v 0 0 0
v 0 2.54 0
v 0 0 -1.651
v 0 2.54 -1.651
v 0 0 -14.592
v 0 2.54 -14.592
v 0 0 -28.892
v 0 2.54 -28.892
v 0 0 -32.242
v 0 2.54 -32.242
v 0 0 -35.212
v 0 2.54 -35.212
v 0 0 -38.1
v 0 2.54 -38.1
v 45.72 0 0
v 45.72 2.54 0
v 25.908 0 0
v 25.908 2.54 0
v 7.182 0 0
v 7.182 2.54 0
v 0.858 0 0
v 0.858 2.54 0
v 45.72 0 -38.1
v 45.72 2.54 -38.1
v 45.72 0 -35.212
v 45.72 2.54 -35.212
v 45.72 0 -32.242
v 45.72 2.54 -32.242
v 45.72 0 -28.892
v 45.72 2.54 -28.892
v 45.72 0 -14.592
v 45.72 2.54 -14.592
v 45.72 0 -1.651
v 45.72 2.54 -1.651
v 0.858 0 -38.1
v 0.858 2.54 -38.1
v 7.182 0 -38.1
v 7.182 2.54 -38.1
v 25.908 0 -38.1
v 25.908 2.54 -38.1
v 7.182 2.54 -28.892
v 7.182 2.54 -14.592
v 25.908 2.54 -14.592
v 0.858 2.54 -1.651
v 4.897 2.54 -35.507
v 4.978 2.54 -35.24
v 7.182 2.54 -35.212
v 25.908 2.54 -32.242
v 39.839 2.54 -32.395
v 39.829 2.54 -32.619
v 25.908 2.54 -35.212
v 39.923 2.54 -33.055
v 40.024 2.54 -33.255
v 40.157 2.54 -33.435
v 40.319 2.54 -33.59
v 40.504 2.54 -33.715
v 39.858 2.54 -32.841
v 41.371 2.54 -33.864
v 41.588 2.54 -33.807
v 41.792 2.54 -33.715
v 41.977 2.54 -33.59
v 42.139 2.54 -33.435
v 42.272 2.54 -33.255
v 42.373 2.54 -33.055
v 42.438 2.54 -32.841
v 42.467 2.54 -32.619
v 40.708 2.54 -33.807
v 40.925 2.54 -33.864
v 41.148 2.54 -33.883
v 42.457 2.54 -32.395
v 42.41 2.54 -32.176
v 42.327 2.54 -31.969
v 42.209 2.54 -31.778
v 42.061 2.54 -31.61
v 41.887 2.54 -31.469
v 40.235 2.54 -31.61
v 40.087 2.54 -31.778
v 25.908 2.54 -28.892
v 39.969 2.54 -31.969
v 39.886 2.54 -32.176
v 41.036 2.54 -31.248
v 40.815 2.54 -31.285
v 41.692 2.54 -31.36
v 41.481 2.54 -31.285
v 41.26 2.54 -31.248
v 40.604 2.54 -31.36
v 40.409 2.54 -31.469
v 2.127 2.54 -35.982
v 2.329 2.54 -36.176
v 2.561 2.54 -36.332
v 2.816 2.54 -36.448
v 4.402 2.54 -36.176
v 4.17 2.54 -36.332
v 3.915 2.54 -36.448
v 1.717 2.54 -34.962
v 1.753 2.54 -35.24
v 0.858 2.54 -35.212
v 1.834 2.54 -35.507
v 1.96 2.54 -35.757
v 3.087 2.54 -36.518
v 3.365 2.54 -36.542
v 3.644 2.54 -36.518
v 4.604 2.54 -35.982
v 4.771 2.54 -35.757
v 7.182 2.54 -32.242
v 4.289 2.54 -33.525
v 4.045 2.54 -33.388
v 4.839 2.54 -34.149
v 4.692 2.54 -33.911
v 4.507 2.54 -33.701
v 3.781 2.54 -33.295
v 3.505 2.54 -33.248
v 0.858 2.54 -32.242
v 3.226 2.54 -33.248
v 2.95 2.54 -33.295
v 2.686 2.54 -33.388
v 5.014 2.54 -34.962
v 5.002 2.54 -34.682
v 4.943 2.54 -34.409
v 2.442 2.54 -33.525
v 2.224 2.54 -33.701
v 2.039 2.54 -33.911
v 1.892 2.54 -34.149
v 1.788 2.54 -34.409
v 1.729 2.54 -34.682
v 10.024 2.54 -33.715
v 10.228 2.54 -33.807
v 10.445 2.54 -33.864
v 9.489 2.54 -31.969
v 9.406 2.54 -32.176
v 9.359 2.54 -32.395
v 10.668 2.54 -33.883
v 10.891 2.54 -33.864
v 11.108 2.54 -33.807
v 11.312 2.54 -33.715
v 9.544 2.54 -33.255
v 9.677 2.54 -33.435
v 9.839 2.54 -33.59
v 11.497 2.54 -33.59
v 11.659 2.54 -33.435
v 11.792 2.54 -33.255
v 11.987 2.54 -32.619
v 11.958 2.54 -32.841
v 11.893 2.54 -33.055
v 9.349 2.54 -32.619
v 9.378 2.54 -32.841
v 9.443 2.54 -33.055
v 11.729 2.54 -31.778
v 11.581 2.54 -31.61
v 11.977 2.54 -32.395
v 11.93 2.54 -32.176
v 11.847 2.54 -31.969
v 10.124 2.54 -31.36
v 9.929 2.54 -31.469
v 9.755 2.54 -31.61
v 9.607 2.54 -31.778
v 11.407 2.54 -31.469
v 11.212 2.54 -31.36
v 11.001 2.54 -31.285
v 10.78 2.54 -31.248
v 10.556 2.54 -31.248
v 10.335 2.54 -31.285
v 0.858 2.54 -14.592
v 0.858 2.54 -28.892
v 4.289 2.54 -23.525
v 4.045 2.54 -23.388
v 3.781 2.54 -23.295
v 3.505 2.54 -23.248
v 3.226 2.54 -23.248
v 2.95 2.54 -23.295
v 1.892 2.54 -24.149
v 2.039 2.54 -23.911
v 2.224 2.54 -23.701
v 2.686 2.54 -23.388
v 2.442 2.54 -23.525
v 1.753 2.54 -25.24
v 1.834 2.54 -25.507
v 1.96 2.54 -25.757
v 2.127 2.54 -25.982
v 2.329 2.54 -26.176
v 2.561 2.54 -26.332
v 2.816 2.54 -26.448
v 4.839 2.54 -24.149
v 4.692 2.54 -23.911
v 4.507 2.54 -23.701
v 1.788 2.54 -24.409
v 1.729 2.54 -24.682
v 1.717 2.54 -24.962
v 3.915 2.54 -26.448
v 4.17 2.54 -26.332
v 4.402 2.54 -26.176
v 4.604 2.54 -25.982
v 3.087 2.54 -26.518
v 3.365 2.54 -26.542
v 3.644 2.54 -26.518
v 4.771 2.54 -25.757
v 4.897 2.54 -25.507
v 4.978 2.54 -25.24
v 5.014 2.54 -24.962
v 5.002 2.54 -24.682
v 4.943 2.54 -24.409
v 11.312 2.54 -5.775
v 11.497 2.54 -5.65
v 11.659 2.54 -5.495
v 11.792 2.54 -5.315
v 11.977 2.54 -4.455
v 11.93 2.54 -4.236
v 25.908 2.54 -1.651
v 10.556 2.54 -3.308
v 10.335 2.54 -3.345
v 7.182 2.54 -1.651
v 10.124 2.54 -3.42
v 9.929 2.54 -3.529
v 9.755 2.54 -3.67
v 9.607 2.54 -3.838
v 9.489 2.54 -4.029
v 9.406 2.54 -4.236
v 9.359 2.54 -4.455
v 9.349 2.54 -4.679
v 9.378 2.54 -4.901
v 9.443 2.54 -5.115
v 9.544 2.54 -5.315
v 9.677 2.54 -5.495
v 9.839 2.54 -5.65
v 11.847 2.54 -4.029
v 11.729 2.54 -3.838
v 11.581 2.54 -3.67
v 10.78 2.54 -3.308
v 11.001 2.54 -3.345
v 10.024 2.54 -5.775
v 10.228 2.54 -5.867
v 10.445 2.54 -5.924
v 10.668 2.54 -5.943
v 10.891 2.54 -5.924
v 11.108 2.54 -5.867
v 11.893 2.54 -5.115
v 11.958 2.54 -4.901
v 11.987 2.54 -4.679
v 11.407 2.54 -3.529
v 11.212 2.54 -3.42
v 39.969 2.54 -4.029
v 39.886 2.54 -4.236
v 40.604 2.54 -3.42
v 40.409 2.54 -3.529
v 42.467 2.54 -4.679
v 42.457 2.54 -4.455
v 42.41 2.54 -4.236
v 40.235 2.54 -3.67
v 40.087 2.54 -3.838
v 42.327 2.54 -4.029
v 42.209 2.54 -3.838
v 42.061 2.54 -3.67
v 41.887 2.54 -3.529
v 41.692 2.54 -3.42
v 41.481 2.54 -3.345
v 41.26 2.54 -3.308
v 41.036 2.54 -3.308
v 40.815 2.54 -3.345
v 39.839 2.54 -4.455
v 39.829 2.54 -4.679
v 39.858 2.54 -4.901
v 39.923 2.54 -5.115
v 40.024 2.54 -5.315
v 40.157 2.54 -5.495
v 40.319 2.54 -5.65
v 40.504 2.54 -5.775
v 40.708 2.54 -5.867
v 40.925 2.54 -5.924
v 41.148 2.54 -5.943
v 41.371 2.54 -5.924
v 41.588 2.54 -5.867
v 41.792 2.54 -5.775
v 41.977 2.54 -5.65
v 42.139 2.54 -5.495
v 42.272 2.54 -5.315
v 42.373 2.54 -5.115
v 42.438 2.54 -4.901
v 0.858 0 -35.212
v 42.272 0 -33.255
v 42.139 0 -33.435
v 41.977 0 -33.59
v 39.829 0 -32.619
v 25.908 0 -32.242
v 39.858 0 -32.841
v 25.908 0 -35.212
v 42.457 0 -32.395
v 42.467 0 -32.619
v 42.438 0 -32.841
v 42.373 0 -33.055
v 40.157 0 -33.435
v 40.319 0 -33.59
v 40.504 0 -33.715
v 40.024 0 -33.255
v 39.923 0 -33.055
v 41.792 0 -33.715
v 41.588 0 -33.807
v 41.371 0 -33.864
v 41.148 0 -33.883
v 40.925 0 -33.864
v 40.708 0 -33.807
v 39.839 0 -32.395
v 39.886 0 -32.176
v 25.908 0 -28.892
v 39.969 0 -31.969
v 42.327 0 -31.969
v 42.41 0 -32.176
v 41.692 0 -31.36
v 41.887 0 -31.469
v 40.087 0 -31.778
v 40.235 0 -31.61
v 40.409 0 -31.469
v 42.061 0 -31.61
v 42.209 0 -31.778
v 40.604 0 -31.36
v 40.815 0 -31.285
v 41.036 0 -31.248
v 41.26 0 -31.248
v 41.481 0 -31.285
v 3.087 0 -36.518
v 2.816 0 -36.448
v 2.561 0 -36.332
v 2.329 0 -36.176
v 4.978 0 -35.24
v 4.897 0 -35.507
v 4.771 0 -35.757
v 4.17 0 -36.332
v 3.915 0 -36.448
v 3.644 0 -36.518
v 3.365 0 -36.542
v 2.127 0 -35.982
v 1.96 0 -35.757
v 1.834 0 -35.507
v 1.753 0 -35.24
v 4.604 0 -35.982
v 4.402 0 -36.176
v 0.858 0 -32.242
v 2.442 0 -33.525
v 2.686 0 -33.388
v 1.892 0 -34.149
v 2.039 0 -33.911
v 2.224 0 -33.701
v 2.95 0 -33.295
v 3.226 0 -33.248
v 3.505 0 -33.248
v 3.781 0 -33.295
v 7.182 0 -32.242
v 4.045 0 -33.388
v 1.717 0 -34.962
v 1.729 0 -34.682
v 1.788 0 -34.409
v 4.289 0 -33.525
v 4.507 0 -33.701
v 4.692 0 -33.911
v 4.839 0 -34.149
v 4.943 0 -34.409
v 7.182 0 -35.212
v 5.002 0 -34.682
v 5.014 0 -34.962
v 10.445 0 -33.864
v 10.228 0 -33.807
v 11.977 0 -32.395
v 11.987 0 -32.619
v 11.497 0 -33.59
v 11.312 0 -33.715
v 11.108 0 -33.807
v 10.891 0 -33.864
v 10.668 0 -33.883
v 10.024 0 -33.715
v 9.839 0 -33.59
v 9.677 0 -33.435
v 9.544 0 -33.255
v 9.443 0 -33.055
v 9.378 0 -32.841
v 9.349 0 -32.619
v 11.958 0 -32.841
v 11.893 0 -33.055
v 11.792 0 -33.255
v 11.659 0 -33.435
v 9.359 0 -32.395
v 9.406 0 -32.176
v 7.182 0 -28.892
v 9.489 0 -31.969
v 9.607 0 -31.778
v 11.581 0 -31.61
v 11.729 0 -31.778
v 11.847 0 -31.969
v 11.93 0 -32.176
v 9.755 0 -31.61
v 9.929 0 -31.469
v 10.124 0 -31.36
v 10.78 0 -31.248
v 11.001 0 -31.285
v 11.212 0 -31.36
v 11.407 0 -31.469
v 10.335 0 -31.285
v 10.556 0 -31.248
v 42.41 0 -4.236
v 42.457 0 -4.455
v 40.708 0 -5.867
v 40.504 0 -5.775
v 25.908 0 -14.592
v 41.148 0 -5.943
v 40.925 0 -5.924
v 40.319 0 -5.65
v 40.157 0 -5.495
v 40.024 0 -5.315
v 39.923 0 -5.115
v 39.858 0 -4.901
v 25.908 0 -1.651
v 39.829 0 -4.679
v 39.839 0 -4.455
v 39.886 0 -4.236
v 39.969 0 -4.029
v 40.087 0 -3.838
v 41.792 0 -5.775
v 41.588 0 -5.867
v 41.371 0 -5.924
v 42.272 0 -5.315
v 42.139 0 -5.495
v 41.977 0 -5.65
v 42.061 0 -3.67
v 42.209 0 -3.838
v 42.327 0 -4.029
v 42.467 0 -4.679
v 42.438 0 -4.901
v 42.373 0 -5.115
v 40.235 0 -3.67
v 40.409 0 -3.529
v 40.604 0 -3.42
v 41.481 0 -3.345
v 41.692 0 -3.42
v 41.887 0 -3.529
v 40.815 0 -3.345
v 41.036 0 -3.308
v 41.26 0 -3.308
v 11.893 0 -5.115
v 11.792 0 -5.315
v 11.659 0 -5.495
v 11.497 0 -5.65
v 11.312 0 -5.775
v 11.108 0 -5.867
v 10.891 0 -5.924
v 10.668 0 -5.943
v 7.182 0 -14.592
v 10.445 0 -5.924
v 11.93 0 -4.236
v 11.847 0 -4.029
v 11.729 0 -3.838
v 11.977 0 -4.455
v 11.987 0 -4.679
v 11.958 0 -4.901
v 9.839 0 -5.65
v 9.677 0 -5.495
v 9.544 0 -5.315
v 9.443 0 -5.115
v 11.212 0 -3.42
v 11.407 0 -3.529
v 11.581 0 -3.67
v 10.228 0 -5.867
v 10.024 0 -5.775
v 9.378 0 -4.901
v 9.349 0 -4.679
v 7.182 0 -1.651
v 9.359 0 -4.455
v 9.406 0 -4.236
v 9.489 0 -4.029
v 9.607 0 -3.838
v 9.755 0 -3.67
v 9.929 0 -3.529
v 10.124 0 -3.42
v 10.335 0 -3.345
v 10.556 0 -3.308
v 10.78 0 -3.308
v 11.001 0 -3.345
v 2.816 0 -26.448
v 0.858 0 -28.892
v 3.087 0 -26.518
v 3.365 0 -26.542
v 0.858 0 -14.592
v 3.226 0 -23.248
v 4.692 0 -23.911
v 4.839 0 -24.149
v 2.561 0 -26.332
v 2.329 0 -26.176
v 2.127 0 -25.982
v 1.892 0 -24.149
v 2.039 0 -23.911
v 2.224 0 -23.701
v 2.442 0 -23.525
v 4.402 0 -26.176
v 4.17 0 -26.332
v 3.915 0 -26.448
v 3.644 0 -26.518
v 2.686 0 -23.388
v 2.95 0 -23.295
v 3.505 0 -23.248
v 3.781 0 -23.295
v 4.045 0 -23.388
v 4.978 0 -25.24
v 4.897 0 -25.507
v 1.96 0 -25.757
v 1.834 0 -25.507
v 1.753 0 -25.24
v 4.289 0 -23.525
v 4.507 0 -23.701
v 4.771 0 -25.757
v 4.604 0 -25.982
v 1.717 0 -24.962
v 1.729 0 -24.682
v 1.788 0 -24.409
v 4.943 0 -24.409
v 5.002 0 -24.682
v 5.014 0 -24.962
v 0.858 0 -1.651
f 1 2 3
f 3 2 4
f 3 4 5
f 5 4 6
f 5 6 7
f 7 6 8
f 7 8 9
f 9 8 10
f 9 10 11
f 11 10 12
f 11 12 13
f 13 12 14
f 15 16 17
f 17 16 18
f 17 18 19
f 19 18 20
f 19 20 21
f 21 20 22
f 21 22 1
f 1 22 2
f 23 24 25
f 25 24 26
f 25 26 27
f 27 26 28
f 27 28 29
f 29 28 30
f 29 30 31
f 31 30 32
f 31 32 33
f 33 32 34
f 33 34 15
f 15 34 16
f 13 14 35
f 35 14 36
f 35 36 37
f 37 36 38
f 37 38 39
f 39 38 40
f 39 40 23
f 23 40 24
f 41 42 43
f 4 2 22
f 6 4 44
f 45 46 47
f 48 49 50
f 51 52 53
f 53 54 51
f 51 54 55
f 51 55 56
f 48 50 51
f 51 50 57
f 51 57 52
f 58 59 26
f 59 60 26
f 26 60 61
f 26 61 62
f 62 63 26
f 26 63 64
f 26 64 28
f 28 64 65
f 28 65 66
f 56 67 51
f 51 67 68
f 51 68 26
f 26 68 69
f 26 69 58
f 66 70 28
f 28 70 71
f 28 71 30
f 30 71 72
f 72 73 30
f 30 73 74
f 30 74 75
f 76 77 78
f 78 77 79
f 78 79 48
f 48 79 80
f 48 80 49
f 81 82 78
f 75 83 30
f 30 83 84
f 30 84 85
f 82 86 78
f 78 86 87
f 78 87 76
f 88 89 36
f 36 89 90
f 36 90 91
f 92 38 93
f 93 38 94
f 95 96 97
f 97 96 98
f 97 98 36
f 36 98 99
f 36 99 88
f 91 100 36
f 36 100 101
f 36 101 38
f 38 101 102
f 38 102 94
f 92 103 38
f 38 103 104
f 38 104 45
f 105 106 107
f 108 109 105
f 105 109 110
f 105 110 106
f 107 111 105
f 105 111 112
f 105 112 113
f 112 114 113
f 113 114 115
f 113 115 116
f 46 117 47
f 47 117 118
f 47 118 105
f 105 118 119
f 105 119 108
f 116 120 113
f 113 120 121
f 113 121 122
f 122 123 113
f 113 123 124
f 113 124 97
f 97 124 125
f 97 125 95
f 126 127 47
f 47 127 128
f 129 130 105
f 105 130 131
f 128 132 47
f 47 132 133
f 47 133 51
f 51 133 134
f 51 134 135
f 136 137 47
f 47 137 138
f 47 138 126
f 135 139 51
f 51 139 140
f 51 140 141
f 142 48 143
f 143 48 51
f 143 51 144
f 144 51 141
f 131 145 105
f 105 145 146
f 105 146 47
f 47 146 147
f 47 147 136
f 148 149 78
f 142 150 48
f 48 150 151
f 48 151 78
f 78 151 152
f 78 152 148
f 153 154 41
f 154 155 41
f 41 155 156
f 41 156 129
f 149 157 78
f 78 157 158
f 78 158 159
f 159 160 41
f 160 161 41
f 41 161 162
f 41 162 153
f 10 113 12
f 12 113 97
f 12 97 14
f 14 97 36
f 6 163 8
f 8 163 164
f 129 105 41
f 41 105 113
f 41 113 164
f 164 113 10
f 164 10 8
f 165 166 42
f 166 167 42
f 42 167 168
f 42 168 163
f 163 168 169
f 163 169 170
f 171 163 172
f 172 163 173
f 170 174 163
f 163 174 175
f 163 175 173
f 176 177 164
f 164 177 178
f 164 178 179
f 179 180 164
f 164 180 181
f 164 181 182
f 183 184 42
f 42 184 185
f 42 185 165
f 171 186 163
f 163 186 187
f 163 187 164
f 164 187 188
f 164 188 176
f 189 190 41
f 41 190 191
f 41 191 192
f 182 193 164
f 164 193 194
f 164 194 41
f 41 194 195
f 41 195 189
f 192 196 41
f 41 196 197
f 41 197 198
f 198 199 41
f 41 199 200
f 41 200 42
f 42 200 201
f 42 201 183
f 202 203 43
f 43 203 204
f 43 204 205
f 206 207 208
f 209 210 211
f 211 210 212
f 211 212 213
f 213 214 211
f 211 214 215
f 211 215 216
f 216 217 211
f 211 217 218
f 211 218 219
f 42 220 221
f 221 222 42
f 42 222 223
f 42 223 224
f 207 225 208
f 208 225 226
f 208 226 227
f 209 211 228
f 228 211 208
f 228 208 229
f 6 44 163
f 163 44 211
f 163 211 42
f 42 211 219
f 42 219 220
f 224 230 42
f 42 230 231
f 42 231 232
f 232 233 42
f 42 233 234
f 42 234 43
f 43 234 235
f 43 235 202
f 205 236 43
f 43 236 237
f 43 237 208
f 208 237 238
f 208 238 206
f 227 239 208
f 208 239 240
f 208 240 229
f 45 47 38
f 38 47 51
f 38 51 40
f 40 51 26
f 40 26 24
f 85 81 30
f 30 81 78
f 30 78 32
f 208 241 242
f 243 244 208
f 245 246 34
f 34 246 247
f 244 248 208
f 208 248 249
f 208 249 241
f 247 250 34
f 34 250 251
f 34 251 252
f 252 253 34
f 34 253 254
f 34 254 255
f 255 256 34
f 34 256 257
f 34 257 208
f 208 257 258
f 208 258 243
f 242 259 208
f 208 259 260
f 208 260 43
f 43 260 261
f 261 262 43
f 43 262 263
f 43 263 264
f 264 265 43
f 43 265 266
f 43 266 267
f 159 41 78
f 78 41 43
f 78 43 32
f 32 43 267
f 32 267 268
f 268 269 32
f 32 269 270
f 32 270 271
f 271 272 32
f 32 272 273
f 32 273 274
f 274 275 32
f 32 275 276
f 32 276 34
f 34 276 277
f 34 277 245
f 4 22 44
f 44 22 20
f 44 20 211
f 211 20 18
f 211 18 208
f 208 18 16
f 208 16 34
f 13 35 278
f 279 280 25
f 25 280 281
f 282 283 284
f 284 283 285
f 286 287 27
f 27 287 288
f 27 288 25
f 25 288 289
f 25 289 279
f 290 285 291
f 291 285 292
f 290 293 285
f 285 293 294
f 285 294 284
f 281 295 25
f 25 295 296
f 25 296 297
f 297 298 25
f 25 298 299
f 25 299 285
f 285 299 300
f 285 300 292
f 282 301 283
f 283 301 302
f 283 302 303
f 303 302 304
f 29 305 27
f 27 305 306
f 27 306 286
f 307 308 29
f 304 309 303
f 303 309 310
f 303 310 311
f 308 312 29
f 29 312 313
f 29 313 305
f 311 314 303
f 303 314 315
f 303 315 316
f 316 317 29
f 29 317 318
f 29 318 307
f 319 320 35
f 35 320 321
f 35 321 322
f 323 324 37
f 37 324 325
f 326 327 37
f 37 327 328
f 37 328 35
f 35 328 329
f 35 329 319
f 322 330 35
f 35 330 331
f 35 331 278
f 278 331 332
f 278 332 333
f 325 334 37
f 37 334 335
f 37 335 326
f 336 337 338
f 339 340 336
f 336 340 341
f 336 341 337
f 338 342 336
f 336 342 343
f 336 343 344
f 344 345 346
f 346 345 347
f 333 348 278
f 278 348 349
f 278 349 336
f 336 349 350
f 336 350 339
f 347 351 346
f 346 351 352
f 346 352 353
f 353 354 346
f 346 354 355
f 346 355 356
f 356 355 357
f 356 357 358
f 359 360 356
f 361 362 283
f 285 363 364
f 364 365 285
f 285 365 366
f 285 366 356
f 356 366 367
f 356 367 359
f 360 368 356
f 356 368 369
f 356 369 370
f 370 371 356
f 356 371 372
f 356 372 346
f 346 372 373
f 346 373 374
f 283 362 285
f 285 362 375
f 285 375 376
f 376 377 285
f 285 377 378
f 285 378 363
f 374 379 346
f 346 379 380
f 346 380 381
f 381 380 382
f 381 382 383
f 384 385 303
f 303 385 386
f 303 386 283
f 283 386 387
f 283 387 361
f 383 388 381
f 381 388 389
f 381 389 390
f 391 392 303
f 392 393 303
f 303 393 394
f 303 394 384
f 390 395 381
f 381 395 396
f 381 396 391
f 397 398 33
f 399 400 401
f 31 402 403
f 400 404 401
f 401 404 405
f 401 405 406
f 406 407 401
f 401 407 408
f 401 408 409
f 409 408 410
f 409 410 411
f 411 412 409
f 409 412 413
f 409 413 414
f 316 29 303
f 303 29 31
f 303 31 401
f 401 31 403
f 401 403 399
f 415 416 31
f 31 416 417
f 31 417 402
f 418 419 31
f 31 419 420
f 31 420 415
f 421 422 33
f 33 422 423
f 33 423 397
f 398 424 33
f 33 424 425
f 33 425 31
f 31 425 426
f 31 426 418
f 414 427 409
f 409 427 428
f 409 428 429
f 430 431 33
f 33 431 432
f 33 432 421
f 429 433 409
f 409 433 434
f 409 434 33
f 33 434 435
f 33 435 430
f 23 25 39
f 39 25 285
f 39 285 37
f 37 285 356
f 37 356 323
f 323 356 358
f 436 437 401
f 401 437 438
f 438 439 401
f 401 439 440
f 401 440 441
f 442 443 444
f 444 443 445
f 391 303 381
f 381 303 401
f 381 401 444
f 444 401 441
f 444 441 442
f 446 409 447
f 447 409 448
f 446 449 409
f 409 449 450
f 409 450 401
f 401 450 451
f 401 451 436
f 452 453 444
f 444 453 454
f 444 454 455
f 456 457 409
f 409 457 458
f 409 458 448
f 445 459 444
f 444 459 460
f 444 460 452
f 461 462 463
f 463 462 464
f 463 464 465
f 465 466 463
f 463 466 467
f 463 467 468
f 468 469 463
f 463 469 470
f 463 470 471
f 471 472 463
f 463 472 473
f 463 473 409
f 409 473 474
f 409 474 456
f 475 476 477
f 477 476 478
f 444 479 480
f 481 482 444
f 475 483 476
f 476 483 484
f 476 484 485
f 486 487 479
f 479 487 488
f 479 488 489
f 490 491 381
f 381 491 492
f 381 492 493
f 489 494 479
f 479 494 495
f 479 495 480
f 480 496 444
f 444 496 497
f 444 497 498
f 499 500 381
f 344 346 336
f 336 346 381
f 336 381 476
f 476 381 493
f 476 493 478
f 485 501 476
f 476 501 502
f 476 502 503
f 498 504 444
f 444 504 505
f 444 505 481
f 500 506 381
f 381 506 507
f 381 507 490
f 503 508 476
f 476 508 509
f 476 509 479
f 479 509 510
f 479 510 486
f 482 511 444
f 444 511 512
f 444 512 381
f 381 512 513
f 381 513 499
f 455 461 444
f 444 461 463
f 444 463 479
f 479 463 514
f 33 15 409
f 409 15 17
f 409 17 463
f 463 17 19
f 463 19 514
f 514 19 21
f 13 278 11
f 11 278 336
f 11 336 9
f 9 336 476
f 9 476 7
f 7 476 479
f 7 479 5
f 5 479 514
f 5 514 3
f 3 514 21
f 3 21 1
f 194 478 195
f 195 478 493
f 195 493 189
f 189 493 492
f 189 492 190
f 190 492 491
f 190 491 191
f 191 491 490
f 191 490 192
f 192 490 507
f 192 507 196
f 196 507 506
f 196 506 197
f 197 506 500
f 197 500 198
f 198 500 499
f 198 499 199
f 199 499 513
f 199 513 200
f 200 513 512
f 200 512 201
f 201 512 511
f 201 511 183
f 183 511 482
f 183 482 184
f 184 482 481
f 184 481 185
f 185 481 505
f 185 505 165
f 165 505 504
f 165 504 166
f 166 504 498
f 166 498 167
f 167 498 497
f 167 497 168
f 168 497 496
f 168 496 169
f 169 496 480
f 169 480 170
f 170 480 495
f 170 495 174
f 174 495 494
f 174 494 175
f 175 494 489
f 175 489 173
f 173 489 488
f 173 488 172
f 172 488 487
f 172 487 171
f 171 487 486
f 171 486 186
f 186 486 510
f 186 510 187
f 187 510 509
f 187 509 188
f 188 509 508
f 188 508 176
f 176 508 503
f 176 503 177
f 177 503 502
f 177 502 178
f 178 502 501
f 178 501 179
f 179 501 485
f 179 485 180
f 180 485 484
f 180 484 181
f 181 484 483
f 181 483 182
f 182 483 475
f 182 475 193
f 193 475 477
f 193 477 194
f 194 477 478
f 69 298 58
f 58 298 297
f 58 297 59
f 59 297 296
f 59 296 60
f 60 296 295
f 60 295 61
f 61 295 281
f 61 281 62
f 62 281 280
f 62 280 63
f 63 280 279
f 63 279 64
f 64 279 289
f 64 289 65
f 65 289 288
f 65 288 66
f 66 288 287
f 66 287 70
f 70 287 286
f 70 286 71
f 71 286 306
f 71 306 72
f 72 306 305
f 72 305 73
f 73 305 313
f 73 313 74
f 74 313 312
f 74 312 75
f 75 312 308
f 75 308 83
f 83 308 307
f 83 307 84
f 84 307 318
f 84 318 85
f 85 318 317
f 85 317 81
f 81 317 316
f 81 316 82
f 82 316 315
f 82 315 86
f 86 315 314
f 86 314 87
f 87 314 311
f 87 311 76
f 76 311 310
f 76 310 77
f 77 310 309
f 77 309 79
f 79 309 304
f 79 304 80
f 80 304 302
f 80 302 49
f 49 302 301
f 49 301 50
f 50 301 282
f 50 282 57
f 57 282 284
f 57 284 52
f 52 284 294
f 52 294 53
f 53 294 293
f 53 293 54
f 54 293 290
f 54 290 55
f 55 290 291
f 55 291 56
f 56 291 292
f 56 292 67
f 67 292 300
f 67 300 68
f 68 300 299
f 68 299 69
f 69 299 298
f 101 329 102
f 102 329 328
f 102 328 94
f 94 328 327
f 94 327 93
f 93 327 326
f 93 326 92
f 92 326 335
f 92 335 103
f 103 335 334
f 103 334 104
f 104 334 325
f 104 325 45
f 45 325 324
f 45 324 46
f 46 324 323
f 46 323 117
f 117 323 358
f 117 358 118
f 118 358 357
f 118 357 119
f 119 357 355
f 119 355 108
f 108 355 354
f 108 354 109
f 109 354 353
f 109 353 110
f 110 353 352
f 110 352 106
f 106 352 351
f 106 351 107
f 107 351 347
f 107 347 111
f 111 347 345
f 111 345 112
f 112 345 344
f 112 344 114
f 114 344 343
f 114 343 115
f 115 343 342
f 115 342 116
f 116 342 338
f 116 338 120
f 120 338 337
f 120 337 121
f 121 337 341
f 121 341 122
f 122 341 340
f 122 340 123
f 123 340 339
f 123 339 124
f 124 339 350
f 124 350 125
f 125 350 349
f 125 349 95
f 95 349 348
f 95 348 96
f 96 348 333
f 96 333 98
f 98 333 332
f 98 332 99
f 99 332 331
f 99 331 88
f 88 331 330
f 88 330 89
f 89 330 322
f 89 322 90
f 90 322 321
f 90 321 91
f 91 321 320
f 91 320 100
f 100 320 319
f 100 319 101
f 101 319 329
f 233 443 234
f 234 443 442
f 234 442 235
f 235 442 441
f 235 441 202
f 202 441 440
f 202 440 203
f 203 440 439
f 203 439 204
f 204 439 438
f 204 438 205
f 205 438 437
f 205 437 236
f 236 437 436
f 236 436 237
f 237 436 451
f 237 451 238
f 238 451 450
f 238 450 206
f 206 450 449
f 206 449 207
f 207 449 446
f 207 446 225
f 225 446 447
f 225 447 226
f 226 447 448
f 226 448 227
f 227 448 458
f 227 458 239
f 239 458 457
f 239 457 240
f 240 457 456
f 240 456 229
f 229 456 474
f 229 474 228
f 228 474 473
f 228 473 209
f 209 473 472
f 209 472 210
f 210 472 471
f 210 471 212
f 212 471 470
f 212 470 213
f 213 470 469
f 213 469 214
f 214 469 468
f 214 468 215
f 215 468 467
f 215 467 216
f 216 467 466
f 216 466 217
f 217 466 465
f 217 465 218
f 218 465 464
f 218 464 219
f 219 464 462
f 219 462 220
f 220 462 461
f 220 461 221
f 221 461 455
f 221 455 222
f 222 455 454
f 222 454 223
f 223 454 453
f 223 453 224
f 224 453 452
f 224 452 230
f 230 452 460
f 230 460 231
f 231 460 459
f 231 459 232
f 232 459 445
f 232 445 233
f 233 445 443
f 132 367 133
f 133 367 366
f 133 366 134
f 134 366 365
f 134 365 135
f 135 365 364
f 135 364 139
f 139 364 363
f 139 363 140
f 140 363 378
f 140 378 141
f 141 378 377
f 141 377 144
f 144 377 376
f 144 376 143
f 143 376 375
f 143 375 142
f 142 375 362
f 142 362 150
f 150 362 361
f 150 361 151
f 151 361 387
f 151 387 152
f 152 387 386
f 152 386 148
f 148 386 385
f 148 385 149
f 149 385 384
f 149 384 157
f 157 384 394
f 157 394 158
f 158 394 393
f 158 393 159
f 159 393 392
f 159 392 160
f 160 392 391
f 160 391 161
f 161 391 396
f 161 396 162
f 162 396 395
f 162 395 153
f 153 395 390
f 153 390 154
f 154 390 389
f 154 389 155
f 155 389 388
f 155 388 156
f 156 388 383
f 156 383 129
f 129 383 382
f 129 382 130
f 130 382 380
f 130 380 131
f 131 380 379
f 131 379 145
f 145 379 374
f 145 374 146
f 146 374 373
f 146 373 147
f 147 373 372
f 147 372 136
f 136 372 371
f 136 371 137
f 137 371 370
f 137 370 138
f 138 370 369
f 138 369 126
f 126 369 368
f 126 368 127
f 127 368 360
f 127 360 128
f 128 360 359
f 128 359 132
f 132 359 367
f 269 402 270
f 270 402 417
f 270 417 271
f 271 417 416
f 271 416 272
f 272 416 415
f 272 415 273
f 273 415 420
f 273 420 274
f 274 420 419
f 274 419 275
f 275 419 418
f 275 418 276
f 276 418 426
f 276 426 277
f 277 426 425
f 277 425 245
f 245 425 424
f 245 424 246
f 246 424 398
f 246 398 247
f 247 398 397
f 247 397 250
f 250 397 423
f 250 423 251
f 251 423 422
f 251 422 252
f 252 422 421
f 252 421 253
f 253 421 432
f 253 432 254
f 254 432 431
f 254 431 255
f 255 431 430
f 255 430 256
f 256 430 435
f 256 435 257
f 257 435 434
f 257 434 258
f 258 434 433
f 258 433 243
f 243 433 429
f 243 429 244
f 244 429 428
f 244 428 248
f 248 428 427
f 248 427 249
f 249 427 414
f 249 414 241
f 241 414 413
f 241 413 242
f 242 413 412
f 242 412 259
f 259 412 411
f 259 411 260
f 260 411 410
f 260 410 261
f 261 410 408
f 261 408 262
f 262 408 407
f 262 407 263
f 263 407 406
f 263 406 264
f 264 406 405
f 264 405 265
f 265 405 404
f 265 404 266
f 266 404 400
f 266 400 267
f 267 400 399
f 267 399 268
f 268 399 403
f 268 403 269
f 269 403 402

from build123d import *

# Parameters (mm, degrees)
SKETCH4_W           = 45.72
SKETCH4_H           = 38.1
BOSS_EXTRUDE1_DEPTH = 2.54
SKETCH5_R           = 1.65
SKETCH5_R_2         = 1.32
CUT_EXTRUDE1_DEPTH  = 2.54


with BuildPart() as part:
    # Sketch4 → Boss-Extrude1 (new body)
    with BuildSketch(Plane(origin=(0, 0, 0), x_dir=(1, 0, 0), z_dir=(0, 1, 0))):
        with Locations((22.86, 19.05)):
            Rectangle(SKETCH4_W, SKETCH4_H)
    extrude(amount=BOSS_EXTRUDE1_DEPTH)

    # Sketch5 → Cut-Extrude1 (cut)
    with BuildSketch(Plane.XZ):
        with Locations((3.3655, -24.892)):
            Circle(SKETCH5_R)
        with Locations((3.3655, -34.892)):
            Circle(SKETCH5_R)
        with Locations((10.668, -4.6228)):
            Circle(SKETCH5_R_2)
        with Locations((10.668, -32.5628)):
            Circle(SKETCH5_R_2)
        with Locations((41.148, -4.6228)):
            Circle(SKETCH5_R_2)
        with Locations((41.148, -32.5628)):
            Circle(SKETCH5_R_2)
    extrude(amount=-CUT_EXTRUDE1_DEPTH, mode=Mode.SUBTRACT)


solid = part.part
